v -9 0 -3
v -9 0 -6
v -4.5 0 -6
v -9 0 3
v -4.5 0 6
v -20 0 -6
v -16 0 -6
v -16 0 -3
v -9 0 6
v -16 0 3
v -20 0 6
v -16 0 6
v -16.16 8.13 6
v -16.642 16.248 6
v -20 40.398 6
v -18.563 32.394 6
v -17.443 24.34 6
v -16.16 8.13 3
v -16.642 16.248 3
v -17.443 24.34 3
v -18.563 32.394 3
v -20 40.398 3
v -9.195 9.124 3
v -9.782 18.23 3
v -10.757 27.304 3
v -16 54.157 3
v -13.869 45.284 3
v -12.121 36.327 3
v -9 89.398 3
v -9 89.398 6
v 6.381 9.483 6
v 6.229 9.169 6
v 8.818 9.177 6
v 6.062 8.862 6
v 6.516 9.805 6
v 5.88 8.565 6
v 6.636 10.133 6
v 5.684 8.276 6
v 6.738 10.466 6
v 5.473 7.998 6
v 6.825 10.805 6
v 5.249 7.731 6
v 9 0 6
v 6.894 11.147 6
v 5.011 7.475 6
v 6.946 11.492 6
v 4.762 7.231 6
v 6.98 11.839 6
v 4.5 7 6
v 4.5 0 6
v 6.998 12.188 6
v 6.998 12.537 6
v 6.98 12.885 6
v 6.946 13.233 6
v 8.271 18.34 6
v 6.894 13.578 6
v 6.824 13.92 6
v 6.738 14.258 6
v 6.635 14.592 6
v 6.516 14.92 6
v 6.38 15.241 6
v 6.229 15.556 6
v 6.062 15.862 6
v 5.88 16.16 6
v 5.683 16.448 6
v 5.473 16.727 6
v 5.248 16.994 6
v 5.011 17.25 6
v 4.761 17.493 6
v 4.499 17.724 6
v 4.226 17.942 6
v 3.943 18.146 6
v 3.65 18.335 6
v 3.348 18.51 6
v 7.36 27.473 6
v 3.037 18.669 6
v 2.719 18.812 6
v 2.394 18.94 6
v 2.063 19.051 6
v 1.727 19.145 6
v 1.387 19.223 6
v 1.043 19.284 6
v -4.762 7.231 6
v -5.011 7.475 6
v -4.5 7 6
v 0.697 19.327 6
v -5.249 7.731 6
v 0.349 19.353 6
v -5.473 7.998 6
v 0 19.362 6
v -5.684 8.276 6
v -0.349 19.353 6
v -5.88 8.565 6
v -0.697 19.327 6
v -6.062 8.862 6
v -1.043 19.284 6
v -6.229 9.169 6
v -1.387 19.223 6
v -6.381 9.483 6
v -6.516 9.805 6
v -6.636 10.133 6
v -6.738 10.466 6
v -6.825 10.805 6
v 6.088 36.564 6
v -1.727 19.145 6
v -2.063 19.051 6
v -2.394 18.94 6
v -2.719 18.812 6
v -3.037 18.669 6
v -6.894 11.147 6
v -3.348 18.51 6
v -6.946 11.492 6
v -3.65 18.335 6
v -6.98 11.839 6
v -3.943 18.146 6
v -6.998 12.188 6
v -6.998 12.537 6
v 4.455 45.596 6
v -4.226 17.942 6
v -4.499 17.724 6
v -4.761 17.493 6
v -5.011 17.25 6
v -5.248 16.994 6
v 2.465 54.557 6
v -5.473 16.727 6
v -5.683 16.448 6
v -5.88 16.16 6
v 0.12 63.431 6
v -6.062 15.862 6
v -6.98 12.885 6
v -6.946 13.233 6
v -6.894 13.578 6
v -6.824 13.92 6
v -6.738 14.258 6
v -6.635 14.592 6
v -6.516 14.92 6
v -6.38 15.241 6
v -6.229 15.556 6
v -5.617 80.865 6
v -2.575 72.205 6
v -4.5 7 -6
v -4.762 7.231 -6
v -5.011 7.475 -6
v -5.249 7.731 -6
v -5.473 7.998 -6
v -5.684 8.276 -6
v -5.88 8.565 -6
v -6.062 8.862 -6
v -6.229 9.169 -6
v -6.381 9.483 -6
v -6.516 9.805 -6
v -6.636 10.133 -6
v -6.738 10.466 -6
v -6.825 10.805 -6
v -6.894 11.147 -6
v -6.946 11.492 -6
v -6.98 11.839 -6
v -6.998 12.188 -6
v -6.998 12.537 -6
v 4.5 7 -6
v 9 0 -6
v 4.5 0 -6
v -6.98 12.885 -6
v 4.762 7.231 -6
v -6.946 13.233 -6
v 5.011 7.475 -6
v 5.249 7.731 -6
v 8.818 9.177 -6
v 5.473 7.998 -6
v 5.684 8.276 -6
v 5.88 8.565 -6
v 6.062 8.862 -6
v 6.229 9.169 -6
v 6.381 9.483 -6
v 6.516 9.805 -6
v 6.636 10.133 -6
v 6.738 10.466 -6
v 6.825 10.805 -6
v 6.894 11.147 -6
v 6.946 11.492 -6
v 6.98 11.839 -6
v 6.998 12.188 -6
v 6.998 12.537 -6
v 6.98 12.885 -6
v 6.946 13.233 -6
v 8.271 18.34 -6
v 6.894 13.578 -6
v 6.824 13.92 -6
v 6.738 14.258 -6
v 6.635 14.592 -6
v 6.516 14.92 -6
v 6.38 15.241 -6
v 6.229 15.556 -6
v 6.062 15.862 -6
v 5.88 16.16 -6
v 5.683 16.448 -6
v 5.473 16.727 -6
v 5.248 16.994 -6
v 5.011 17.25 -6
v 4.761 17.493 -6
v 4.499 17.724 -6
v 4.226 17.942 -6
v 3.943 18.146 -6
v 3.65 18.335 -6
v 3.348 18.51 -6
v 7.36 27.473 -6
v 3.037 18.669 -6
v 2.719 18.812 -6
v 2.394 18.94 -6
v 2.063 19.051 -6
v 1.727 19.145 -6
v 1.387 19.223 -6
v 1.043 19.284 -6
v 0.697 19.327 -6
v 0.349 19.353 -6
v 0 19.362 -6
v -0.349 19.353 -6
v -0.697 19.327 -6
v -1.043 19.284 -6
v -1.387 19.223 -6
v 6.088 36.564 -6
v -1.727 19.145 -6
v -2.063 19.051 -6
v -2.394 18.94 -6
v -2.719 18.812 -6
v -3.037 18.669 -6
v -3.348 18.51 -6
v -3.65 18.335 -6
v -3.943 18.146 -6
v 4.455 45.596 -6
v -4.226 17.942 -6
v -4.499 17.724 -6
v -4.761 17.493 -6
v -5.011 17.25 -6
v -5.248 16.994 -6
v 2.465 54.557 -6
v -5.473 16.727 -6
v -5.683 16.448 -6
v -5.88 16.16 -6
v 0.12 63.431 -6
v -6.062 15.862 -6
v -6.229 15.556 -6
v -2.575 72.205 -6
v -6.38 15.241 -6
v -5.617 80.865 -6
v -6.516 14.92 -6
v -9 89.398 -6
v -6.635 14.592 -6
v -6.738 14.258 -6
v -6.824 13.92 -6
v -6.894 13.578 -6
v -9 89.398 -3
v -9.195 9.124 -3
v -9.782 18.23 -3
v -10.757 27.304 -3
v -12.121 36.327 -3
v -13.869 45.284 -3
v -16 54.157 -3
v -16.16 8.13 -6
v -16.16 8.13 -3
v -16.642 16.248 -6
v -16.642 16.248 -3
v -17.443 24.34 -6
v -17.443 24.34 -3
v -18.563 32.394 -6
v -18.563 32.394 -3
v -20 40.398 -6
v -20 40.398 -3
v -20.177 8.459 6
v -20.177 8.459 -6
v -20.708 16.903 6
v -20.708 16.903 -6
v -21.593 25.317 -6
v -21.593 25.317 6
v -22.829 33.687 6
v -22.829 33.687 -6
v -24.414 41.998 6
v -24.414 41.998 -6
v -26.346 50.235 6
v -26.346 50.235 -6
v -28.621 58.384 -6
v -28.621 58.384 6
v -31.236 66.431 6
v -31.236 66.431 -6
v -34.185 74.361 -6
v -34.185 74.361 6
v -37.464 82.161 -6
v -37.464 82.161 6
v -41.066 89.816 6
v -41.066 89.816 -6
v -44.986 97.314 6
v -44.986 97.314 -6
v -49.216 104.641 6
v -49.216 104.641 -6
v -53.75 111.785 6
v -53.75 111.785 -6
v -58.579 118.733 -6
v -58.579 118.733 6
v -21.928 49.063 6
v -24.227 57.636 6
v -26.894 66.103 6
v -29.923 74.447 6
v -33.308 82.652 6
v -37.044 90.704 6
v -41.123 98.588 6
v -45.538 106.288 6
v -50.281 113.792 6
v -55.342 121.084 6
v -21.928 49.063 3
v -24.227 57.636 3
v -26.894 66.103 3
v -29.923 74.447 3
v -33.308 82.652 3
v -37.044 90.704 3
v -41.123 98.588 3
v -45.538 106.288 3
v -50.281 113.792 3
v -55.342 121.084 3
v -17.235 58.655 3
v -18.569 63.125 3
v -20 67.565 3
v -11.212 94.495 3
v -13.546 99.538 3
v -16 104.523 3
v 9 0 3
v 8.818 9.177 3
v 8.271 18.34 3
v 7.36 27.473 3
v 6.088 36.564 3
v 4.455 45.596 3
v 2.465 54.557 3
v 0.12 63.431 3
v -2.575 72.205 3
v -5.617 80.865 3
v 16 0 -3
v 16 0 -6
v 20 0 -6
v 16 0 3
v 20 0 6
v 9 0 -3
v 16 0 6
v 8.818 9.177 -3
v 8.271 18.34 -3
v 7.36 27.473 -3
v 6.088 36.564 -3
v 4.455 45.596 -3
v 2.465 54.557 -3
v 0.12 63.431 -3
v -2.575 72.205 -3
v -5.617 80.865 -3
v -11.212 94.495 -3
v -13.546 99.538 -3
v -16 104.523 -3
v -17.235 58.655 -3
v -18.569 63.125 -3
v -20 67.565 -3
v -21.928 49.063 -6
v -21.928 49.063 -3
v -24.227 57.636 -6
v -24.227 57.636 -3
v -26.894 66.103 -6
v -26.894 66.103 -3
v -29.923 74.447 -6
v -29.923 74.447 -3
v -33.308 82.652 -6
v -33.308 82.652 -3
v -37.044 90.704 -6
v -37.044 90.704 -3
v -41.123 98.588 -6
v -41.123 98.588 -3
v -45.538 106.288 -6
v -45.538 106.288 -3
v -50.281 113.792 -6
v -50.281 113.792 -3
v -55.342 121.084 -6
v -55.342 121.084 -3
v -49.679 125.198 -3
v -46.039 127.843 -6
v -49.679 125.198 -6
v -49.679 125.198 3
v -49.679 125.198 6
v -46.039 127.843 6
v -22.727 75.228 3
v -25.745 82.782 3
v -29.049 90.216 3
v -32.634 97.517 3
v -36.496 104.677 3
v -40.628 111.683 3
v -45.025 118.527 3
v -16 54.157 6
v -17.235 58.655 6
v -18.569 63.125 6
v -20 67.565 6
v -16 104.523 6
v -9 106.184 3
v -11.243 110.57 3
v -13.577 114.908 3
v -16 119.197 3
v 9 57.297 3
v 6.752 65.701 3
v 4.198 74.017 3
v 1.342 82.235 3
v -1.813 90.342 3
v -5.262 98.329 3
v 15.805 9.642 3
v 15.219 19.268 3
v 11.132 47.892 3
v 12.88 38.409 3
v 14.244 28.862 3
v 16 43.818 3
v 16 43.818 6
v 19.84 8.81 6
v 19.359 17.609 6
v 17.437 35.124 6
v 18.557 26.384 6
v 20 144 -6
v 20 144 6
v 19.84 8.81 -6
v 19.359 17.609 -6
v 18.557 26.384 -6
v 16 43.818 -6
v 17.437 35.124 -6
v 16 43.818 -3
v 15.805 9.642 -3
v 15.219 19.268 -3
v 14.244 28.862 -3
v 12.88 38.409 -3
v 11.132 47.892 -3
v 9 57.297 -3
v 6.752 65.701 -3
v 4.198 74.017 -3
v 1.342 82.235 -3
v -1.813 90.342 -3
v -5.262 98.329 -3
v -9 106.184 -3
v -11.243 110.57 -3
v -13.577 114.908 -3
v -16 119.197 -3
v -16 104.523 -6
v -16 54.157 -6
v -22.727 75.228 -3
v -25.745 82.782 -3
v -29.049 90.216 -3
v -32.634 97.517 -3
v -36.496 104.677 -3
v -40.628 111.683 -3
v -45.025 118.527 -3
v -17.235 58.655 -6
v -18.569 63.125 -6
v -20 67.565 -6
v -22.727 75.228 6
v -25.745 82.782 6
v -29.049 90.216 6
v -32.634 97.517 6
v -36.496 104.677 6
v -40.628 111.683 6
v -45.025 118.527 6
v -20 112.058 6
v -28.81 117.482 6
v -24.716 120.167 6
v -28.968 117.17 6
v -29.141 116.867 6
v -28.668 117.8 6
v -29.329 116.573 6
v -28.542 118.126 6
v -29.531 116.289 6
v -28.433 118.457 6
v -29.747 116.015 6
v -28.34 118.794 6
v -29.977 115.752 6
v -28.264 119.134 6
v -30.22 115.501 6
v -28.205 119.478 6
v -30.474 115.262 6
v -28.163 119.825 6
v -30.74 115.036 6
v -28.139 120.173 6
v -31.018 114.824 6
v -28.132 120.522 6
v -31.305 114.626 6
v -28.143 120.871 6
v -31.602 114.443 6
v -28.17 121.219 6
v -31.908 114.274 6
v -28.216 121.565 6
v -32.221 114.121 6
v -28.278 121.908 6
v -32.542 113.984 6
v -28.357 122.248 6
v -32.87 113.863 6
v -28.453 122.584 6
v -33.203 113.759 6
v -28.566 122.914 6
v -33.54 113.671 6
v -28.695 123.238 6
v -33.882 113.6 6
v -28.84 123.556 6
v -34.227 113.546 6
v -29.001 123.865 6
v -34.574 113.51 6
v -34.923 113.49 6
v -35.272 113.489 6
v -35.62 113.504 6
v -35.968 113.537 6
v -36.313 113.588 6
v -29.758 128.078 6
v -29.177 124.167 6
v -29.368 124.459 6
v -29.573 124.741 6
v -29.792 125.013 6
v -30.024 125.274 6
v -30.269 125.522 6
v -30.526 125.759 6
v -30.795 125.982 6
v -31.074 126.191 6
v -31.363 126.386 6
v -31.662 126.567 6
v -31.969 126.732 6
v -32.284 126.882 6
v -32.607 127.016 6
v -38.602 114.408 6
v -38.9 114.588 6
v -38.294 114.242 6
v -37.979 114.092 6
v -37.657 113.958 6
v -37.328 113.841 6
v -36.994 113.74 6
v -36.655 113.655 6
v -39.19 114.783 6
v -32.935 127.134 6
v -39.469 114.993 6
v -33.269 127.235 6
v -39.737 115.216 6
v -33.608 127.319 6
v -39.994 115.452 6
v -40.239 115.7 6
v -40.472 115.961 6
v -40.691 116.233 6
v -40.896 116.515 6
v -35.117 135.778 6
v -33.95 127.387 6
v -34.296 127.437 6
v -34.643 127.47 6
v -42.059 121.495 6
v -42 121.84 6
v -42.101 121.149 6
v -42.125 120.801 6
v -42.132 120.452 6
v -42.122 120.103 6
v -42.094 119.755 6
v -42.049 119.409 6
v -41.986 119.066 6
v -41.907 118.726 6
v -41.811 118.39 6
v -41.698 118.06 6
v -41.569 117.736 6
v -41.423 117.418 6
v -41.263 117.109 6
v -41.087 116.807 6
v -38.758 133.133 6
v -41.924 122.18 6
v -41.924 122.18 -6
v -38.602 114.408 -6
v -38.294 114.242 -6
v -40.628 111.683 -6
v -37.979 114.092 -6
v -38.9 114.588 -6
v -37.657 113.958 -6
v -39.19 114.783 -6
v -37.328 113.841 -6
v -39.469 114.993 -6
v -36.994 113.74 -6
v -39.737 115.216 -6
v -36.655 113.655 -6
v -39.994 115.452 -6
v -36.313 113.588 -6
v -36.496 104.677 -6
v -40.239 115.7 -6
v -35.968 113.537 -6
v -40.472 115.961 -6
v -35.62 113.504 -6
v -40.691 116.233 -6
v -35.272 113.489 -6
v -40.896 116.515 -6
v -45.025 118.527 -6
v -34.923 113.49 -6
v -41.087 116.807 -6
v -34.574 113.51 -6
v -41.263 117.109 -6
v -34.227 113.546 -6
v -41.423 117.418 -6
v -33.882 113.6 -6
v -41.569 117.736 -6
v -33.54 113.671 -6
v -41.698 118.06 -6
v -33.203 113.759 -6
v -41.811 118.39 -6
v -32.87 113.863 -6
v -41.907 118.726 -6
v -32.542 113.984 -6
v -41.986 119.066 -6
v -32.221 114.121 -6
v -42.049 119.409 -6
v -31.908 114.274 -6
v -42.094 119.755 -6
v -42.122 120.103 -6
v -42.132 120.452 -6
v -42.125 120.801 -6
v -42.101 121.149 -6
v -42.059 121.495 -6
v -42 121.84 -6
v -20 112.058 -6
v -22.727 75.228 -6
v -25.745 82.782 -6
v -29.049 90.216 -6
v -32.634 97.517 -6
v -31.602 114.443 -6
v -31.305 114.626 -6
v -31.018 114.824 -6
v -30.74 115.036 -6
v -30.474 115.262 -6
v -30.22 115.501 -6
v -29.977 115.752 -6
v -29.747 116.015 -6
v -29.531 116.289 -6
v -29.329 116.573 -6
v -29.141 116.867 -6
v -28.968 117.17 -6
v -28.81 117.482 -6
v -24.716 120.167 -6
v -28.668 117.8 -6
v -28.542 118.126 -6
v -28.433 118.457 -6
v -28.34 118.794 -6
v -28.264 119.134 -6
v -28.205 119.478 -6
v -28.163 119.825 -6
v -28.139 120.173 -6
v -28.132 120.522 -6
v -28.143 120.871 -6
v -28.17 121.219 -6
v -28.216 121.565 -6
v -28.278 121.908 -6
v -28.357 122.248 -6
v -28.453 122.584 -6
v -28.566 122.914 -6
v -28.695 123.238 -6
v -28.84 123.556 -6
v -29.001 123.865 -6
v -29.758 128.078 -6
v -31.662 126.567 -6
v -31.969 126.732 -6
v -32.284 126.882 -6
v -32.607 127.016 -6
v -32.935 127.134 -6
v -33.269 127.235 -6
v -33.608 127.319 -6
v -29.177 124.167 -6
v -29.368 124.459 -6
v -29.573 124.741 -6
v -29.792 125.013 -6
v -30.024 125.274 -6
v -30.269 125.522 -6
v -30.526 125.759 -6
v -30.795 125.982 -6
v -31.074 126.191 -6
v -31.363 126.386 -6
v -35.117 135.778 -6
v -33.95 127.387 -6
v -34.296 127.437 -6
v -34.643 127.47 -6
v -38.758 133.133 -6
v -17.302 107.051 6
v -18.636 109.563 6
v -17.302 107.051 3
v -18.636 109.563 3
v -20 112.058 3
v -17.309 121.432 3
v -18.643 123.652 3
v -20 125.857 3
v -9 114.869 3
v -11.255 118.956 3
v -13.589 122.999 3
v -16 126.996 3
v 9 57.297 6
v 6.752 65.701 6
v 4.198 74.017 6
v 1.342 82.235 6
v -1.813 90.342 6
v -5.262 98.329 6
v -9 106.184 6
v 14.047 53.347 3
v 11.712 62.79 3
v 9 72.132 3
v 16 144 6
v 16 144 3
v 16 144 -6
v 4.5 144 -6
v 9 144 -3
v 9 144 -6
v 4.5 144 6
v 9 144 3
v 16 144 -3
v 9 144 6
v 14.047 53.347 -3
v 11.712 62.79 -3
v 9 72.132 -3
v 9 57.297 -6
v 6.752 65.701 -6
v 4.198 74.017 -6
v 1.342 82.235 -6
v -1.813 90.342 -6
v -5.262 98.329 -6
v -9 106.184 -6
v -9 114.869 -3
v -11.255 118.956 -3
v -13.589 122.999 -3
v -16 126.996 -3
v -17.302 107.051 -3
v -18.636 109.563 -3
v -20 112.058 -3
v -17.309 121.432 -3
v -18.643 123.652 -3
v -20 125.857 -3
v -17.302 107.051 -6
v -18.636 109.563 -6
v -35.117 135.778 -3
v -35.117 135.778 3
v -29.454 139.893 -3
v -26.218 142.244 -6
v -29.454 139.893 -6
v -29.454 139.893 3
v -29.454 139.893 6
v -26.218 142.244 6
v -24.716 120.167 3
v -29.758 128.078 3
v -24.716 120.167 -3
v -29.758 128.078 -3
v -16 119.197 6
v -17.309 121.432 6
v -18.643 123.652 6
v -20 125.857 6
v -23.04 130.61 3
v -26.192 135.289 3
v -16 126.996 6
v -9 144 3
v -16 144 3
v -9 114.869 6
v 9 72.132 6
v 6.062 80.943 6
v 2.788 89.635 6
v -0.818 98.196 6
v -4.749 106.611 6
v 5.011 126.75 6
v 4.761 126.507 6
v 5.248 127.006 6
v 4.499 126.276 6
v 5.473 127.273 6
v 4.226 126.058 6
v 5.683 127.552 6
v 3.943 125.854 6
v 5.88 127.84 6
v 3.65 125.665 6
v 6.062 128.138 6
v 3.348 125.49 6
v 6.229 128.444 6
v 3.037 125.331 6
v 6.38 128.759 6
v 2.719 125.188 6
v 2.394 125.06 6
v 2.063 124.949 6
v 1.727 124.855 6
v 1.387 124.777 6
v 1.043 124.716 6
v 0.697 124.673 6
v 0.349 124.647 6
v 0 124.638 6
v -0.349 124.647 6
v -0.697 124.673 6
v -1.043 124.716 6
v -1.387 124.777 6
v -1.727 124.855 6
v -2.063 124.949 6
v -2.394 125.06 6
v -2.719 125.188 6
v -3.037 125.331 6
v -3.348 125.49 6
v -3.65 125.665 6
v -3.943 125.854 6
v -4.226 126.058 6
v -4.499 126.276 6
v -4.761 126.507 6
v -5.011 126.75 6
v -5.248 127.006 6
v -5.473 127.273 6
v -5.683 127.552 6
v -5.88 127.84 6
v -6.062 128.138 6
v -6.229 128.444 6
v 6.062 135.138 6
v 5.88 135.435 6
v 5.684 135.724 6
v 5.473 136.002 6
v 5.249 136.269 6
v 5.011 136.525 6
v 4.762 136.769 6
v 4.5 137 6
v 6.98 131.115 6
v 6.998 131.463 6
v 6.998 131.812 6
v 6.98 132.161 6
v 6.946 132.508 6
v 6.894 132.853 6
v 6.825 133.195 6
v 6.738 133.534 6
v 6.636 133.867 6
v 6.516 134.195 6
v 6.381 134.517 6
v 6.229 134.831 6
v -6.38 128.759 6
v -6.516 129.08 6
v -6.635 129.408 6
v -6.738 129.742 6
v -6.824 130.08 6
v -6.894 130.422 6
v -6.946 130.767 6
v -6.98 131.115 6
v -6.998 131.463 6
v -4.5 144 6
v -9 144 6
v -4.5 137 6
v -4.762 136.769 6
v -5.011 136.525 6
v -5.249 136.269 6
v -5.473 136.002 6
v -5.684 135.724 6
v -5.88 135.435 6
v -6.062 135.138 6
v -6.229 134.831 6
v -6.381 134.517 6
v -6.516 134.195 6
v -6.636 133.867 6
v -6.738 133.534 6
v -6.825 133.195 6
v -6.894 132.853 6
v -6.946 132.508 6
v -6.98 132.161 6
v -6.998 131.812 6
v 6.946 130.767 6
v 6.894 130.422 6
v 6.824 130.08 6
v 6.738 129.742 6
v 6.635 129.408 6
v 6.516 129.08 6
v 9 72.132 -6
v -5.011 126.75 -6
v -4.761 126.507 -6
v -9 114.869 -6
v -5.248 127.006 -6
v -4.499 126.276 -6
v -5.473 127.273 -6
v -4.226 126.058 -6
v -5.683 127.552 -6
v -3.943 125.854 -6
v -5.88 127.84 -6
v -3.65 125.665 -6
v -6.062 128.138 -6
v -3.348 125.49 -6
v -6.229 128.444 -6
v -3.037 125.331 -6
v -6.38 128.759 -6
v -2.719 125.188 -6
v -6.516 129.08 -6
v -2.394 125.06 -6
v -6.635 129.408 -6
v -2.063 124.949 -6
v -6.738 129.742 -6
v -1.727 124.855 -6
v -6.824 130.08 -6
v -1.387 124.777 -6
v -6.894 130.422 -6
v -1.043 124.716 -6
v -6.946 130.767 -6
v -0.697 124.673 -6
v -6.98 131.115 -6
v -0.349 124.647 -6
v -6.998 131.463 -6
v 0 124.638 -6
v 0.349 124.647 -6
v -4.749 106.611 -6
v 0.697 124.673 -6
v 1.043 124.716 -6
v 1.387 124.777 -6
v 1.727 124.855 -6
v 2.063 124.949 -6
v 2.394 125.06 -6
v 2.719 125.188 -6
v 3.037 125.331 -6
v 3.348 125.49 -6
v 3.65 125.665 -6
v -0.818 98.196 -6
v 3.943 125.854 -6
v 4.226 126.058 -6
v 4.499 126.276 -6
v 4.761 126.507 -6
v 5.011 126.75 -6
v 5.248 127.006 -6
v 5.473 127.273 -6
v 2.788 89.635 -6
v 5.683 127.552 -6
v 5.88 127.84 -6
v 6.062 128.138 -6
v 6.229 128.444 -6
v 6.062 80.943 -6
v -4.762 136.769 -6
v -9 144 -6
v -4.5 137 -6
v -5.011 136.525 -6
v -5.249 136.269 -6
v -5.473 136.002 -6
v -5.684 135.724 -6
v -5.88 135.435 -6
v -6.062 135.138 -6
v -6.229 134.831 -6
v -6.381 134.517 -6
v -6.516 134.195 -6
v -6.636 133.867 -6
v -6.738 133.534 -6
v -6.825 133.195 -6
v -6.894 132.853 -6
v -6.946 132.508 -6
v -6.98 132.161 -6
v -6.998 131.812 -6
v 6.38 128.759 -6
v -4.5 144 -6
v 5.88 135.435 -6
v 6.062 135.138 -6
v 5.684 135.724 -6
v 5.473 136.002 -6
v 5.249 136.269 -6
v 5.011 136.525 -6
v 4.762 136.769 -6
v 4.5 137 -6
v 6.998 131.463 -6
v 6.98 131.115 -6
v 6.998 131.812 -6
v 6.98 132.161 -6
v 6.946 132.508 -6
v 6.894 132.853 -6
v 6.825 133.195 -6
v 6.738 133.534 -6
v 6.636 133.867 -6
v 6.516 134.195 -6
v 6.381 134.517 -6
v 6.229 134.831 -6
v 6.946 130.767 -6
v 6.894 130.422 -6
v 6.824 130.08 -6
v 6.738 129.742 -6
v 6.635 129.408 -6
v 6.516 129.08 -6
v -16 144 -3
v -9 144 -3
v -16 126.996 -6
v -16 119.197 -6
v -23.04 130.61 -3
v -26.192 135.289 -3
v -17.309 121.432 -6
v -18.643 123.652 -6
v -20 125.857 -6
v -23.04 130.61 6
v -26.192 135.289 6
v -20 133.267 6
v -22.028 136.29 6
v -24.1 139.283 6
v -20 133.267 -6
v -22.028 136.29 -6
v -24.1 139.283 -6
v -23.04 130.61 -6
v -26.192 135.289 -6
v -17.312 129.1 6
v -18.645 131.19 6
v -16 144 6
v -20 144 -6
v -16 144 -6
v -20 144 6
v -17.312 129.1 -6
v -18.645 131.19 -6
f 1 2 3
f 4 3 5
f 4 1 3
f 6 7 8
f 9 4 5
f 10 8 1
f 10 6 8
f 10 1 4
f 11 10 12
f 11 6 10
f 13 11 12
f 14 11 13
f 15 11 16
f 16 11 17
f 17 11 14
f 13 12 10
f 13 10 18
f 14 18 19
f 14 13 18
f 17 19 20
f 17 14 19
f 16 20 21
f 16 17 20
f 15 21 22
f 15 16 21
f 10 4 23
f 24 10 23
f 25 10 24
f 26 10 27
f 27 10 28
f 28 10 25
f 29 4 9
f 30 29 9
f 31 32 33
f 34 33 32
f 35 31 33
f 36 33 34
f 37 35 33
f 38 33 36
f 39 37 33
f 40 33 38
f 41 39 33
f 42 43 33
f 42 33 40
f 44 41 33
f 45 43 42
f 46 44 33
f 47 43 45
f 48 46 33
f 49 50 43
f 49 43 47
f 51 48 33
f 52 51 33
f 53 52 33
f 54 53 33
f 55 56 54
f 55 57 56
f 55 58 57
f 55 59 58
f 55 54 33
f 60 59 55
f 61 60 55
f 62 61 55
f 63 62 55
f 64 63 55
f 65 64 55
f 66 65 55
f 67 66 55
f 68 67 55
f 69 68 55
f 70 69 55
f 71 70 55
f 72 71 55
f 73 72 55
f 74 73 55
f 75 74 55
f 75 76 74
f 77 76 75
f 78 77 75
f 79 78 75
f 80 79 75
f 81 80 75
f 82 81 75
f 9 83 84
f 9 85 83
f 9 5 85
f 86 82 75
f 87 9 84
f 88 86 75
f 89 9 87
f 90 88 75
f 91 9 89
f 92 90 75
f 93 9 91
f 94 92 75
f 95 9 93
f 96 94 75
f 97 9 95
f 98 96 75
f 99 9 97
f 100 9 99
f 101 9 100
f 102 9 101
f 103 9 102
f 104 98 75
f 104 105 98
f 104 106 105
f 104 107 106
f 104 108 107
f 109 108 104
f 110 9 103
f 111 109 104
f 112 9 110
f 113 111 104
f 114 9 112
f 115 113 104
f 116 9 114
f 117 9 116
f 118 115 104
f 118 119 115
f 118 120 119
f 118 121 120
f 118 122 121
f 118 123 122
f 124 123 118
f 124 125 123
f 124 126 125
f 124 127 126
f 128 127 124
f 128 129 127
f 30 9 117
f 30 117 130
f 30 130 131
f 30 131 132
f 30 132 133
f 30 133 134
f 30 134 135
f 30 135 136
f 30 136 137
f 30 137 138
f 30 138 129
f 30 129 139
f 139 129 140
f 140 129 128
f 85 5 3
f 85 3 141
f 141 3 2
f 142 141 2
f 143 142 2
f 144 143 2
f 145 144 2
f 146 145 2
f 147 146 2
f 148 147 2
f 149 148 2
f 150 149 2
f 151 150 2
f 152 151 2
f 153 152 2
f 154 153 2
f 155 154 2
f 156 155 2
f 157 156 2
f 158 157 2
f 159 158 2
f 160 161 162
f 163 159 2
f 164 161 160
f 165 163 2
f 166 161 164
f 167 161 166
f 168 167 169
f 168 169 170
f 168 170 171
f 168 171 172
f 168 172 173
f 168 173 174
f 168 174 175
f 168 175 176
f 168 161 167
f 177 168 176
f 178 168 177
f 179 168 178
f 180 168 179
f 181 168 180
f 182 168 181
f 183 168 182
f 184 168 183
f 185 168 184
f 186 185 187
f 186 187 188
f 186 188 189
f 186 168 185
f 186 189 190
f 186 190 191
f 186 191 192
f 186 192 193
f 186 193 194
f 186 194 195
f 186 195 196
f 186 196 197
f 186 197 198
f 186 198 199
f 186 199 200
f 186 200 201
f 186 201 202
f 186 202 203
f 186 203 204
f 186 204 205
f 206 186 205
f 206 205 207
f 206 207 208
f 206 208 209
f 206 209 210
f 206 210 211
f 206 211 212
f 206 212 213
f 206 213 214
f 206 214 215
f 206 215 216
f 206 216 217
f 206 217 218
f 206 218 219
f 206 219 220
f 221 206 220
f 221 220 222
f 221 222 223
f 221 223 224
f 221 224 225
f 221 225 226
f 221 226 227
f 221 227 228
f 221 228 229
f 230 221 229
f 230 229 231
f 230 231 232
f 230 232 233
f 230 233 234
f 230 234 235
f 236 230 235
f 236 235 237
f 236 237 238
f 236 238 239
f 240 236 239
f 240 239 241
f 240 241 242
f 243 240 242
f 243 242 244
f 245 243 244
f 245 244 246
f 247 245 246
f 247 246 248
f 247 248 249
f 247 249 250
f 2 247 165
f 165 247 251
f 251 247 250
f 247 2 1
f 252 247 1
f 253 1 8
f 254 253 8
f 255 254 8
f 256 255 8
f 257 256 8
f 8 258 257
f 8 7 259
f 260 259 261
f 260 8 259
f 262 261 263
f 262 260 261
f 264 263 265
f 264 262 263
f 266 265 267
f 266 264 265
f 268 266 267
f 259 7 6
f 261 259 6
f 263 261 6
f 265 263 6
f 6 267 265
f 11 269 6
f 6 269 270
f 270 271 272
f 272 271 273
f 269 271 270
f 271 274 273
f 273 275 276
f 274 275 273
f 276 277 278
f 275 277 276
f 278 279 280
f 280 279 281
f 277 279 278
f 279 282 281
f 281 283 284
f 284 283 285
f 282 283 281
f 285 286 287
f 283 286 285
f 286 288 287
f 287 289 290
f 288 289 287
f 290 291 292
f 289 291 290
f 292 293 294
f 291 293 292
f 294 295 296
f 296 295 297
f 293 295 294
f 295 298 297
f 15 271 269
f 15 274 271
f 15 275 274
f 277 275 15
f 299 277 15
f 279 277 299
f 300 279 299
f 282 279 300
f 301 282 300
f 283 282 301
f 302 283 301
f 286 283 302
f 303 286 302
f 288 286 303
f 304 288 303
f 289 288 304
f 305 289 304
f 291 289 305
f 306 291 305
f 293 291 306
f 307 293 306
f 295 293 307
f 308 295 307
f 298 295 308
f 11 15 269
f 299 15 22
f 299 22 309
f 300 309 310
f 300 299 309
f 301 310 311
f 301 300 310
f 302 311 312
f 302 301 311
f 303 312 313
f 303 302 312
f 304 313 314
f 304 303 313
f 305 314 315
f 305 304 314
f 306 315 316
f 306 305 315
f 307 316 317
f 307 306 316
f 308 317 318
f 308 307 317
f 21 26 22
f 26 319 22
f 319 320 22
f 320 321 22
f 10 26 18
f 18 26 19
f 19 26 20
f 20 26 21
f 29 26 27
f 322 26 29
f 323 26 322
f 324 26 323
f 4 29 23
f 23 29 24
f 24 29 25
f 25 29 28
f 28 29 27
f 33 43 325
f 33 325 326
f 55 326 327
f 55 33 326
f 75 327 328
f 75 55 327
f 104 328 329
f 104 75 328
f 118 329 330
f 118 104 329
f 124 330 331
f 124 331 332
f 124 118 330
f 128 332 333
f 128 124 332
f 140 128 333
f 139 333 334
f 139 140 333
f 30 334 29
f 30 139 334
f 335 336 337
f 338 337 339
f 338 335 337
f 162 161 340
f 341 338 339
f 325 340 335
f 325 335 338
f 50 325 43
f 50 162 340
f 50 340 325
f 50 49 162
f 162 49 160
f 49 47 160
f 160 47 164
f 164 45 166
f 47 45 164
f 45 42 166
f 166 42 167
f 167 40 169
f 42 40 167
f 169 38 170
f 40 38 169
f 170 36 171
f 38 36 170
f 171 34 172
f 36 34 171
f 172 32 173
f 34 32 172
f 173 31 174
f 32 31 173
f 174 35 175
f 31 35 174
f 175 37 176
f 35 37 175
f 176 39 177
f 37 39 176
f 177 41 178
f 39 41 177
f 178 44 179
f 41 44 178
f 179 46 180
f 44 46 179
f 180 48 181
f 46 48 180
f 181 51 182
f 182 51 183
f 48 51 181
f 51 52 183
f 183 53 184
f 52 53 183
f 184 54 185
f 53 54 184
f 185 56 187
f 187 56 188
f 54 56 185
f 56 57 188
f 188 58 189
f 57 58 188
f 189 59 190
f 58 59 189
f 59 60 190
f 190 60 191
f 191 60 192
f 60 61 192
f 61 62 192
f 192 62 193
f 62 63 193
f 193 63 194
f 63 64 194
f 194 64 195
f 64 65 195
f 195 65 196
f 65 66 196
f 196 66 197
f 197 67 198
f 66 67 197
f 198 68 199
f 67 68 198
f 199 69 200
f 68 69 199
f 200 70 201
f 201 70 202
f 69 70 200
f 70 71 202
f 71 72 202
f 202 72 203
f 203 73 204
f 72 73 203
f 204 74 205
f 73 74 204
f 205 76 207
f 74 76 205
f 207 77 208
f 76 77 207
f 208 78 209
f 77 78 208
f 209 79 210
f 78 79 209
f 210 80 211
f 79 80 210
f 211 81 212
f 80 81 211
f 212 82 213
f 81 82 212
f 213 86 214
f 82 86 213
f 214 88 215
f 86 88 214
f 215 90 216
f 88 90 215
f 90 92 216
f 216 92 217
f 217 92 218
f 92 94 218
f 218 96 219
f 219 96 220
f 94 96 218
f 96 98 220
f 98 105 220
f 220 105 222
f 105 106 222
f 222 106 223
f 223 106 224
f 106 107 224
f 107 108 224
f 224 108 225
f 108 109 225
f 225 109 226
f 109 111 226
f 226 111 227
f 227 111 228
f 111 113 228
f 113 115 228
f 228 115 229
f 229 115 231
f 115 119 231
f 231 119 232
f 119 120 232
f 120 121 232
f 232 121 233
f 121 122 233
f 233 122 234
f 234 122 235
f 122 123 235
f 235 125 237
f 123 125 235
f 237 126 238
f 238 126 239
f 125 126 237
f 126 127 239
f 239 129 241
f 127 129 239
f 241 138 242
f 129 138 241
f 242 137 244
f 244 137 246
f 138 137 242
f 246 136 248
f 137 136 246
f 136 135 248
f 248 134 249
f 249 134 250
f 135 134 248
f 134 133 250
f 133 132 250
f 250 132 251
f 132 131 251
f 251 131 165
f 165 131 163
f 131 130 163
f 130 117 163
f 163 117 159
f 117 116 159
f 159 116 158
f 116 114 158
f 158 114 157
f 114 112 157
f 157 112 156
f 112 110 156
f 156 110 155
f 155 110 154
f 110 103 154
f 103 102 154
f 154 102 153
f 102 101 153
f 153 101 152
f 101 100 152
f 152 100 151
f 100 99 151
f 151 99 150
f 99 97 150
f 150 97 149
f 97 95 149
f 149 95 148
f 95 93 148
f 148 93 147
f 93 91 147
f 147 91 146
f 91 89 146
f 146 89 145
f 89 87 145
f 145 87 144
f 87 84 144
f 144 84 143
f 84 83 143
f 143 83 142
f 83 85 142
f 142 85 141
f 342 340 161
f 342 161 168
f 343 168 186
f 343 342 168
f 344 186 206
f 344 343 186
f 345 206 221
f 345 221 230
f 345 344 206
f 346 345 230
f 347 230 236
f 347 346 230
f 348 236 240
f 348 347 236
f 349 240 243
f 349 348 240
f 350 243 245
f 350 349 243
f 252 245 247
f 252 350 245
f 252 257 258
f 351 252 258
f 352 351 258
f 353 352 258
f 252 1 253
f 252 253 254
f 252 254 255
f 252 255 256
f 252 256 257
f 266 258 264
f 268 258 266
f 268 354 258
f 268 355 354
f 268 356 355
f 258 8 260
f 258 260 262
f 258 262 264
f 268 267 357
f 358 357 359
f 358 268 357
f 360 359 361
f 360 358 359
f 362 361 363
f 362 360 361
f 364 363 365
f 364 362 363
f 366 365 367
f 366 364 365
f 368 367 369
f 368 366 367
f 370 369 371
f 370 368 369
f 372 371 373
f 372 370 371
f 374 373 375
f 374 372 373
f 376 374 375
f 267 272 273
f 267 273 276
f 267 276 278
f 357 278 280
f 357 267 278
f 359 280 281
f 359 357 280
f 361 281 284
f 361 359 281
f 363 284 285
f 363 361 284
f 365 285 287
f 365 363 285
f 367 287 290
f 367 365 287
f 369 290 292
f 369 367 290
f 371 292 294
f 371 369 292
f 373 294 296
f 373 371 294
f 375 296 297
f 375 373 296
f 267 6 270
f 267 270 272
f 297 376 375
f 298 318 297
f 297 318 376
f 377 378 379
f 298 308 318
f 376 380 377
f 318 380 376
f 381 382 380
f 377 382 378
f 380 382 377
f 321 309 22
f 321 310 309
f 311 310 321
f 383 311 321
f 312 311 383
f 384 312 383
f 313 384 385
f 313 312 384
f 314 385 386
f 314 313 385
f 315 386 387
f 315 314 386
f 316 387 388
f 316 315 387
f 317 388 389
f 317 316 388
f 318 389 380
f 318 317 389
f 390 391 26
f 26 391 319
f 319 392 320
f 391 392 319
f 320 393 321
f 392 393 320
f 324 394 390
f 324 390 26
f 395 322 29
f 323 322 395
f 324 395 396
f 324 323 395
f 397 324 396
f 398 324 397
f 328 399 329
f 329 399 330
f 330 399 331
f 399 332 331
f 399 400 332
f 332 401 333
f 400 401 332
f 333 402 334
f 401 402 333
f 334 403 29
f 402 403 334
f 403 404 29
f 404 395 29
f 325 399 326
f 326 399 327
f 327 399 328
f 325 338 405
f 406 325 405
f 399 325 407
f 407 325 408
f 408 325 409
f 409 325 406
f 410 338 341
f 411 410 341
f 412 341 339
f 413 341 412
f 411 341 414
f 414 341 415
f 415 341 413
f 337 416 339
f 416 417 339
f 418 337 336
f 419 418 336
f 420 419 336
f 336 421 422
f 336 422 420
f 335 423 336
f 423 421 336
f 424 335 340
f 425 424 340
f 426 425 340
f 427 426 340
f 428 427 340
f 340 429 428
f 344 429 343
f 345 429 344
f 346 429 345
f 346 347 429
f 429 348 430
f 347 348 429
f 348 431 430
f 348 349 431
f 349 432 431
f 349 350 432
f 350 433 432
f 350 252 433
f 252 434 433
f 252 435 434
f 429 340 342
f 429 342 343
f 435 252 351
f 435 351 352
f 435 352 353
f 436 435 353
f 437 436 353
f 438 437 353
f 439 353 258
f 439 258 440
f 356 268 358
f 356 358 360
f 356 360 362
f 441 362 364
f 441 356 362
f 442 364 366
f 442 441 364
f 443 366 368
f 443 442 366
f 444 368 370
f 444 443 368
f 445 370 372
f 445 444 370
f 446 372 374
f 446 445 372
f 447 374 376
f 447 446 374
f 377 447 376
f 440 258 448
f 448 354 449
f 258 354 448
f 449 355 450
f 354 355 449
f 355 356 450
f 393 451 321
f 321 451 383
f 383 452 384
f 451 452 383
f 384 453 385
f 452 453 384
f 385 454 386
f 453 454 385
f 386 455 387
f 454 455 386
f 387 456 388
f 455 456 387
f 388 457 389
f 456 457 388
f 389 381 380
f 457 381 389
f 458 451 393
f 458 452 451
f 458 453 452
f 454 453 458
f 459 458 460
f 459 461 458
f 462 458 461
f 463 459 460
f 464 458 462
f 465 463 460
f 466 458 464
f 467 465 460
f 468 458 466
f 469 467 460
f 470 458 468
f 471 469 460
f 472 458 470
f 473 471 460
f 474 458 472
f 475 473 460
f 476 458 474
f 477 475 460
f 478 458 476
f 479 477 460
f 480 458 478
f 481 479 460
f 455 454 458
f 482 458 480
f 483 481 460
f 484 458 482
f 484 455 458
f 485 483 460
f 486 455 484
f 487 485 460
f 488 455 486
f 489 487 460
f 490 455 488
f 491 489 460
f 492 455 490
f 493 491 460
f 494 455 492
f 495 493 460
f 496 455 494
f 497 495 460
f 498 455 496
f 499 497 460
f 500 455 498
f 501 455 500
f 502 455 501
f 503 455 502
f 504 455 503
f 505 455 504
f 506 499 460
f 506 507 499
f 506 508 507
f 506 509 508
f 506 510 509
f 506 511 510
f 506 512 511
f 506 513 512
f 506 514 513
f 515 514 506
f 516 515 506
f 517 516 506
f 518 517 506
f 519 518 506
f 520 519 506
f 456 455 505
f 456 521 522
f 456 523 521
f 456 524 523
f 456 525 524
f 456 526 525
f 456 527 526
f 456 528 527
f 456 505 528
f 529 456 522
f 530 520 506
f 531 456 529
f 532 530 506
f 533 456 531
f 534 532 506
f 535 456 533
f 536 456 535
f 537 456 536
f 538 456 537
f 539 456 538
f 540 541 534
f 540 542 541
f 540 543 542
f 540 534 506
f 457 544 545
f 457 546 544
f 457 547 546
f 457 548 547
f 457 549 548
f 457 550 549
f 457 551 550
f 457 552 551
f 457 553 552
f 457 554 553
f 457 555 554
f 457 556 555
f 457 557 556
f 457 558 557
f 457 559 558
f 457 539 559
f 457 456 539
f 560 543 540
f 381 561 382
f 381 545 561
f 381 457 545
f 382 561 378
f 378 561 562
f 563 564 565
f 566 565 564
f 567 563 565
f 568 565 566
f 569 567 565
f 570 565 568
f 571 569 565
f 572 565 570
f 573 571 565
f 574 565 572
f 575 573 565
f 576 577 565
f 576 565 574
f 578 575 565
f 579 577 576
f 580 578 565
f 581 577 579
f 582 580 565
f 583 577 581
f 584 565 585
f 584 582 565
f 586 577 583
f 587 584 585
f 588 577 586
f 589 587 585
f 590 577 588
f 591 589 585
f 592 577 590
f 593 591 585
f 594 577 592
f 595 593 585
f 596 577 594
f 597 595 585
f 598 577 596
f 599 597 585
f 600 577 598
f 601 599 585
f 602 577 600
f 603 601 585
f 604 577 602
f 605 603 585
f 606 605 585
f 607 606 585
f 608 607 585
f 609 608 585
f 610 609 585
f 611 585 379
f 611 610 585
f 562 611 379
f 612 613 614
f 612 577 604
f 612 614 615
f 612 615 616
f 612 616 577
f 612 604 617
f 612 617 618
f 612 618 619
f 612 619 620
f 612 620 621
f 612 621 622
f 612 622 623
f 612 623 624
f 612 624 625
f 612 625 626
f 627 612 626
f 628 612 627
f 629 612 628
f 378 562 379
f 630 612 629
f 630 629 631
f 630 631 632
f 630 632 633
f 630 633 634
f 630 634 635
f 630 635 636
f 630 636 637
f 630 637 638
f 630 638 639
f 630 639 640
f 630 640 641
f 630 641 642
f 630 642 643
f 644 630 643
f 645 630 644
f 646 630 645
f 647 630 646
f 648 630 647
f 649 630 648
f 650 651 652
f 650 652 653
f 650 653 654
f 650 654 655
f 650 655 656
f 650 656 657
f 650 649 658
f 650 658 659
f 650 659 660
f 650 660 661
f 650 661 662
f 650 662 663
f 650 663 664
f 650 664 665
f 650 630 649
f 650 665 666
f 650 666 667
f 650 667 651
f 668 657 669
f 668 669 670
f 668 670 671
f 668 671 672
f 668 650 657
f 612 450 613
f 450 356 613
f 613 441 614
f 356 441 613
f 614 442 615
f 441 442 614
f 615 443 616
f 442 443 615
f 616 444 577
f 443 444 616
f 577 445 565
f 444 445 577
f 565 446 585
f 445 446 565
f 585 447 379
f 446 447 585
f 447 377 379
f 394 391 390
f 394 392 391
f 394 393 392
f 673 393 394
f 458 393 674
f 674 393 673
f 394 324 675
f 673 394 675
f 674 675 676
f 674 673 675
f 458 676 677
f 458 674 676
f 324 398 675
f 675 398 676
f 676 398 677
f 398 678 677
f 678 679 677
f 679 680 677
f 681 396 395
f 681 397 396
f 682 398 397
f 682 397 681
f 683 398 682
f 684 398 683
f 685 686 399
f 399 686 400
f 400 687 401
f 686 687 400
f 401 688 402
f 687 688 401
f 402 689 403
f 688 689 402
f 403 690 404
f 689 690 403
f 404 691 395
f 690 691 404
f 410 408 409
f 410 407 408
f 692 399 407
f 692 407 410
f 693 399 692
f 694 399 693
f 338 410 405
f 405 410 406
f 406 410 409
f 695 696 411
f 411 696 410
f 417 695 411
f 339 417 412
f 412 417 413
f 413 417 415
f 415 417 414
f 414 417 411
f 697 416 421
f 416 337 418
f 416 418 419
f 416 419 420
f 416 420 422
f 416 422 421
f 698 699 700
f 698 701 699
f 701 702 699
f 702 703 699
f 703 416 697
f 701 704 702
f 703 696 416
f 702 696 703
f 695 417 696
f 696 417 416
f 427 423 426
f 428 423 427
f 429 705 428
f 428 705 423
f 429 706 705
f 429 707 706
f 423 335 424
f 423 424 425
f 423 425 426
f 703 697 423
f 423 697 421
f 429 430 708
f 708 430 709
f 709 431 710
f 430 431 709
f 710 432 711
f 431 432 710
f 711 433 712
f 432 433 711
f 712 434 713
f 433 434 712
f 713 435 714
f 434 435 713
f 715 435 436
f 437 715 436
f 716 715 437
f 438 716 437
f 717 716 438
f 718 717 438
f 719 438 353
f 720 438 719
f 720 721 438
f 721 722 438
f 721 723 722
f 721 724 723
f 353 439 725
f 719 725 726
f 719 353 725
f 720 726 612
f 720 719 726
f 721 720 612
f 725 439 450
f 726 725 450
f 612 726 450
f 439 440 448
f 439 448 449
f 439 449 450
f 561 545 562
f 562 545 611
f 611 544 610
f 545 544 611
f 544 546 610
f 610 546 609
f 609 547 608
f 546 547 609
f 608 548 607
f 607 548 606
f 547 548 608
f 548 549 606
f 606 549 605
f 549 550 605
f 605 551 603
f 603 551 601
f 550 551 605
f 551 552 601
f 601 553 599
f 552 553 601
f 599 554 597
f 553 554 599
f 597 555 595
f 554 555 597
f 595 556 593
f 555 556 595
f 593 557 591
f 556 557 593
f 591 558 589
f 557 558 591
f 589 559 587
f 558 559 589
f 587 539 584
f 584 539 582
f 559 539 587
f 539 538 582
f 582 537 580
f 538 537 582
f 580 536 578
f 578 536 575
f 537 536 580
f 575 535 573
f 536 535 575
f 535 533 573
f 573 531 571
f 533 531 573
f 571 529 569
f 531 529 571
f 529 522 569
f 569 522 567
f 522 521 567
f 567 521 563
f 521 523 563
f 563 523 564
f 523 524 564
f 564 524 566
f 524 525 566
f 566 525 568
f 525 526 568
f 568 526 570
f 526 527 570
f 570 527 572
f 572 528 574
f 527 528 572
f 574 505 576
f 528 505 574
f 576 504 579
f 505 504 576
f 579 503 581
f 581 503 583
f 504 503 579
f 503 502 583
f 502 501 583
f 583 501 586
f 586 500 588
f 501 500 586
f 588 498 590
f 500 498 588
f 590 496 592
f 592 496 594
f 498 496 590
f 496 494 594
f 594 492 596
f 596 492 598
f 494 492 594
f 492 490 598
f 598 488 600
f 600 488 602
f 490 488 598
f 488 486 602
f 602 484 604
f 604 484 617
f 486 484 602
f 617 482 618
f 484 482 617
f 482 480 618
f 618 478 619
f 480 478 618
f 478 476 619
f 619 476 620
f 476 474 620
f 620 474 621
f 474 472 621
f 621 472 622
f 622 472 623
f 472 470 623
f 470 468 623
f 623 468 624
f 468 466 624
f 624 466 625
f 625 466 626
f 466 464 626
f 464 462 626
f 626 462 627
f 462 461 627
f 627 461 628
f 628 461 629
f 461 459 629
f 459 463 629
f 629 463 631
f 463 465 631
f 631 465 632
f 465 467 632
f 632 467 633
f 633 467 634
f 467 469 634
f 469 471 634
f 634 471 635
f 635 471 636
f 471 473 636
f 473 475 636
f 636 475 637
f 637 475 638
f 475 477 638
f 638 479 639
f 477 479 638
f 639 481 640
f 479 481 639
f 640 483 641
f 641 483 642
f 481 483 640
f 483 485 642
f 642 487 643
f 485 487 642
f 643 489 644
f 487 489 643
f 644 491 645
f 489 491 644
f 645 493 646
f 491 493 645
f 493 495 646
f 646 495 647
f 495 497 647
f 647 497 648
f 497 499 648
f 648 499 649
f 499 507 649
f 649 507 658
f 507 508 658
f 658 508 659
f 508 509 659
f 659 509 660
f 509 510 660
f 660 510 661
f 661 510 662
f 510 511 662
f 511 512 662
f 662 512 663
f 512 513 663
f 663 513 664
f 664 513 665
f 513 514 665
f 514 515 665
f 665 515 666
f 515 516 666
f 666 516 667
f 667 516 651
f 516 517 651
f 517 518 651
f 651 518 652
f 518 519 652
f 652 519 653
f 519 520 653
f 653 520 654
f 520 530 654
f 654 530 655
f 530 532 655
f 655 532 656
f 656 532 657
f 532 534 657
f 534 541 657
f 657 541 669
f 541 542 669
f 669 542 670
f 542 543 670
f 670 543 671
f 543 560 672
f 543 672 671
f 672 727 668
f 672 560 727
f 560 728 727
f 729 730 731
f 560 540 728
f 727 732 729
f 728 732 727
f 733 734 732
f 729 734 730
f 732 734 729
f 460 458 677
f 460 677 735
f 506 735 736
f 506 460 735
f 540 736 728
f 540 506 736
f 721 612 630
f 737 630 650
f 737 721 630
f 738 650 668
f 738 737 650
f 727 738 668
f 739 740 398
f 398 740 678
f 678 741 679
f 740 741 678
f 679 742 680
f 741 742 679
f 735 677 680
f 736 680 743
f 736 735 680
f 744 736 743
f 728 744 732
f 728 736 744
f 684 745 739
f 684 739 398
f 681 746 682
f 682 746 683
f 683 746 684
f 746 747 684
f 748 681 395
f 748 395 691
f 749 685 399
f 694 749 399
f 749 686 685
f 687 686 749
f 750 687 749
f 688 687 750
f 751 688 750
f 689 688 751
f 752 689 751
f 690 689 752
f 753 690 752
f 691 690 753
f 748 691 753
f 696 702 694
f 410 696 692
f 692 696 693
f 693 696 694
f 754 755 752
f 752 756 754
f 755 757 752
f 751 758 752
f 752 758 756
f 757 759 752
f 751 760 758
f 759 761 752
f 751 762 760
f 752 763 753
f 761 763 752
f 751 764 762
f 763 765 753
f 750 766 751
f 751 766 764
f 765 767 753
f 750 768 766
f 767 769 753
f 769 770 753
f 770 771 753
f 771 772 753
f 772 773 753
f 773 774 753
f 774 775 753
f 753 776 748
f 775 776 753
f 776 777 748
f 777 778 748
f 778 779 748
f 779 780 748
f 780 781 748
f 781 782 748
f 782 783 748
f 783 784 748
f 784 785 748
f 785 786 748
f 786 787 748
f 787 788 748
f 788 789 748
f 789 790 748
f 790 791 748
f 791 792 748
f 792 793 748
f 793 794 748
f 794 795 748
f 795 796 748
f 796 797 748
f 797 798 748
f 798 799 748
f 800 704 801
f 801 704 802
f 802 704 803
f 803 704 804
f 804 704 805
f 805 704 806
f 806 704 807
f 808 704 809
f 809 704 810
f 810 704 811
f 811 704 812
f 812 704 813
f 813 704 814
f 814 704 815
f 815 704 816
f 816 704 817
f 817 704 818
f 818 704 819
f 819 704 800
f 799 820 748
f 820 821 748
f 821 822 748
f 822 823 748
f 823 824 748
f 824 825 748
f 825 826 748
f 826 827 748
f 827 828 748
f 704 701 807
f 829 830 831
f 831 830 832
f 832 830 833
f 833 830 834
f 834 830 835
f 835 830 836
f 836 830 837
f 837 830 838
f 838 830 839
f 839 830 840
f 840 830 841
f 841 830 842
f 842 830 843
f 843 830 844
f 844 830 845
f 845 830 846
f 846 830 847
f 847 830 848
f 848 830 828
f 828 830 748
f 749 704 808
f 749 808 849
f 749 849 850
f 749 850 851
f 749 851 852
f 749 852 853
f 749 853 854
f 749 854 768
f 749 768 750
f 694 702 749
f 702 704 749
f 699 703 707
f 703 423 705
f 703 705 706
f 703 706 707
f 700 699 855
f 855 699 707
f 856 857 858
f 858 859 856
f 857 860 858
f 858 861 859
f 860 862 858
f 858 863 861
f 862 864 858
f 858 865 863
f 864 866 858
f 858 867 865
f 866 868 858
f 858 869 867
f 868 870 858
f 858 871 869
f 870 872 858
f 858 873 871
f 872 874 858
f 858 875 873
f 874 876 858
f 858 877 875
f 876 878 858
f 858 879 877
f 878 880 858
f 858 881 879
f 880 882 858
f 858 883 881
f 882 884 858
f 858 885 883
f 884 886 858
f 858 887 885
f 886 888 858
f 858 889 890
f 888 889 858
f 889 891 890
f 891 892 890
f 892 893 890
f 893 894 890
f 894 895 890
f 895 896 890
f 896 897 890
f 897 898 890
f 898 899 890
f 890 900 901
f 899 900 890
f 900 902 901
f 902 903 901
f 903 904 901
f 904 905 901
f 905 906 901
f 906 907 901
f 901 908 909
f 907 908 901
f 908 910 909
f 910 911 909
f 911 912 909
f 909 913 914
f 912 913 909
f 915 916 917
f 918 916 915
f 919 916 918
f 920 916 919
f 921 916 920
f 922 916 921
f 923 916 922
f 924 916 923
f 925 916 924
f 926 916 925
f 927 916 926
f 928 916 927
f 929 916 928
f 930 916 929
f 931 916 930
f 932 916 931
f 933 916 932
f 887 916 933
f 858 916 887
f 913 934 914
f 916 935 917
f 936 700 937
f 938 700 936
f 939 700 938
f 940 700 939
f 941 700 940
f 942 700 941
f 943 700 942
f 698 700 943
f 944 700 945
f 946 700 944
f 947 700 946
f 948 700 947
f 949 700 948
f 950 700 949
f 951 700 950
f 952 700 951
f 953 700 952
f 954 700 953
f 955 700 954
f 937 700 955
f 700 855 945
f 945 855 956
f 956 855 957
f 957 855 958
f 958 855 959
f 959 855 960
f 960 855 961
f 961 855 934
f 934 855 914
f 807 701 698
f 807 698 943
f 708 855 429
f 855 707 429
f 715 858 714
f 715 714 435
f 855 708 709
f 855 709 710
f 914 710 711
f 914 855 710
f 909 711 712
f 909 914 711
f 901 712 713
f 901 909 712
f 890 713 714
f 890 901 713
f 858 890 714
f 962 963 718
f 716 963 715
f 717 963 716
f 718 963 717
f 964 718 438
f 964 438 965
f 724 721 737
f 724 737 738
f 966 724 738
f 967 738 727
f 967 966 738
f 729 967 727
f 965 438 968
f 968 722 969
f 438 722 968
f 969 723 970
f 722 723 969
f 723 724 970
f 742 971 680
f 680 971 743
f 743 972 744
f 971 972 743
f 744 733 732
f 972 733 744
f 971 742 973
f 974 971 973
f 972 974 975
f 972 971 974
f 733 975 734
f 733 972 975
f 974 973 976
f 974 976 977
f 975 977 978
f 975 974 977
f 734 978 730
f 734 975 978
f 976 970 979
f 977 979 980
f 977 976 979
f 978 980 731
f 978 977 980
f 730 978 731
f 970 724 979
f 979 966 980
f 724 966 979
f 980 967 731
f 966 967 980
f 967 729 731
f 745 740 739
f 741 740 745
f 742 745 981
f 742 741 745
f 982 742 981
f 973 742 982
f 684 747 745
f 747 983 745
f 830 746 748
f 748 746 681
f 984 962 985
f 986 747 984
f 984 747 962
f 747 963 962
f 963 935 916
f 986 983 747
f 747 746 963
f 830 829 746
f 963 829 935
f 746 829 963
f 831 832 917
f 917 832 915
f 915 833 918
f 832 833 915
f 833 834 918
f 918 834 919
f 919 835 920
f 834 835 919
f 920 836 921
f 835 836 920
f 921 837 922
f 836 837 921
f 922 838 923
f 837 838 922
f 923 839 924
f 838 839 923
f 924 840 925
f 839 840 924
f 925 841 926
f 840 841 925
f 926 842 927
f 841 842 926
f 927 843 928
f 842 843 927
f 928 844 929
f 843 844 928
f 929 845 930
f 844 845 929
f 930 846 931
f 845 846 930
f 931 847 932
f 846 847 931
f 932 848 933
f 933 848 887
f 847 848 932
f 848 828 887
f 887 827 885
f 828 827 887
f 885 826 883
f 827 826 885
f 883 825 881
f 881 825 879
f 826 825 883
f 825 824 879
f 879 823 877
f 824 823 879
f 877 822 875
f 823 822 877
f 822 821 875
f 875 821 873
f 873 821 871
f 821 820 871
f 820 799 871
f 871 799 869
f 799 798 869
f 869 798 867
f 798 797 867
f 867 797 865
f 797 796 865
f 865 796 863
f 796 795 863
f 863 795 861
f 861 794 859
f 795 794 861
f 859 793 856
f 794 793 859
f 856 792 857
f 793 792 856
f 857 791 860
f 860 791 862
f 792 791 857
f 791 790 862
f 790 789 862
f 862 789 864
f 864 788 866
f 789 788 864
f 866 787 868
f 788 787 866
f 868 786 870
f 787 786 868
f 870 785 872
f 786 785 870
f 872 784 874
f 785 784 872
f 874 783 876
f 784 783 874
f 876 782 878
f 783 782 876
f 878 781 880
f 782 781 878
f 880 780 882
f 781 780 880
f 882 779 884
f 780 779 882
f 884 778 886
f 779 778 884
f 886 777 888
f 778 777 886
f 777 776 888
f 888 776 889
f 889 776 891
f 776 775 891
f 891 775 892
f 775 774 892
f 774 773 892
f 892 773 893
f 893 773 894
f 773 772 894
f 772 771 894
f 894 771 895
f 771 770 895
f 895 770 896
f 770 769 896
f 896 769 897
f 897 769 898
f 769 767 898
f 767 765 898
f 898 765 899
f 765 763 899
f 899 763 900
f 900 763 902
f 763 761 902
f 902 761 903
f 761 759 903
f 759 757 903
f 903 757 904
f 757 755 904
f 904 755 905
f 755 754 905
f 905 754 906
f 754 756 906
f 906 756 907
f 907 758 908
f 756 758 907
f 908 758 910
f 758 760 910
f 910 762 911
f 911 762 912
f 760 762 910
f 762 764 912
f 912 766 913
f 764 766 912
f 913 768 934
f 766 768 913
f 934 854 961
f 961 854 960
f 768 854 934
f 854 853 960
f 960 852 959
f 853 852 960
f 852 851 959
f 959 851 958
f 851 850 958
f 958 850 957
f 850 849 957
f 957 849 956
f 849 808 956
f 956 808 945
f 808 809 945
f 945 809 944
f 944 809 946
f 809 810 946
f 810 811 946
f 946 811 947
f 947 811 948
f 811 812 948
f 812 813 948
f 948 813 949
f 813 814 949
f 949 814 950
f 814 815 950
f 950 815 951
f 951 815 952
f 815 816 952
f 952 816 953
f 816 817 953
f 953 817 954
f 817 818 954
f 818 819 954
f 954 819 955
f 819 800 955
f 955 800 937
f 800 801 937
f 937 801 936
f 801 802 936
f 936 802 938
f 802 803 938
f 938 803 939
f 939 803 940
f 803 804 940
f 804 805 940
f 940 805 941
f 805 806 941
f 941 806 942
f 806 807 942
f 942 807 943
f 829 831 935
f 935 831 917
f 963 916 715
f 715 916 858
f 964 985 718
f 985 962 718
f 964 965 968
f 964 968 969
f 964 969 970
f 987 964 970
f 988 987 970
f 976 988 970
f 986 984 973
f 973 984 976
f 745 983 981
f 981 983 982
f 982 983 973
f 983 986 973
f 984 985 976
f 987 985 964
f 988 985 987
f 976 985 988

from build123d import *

# Parameters (mm, degrees)
SKETCH004_W          = 7
SKETCH004_H          = 3
SKETCH005_W          = 7
SKETCH005_H          = 3
POCKET_DEPTH         = 12.001
POCKET001_DEPTH      = 12.001
SKETCH009_W          = 7
SKETCH009_H          = 3
SKETCH010_W          = 7
SKETCH010_H          = 3
POCKET002_DEPTH      = 6.001
POCKET002_DEPTH_BACK = -6.001


with BuildPart() as part:
    # AdditivePipe: sweep along a path in Sketch002
    with BuildLine(Plane.XY) as additivepipe_path:
        ThreePointArc((0, 0), (-10.865453, 68.601773), (-42.398227, 130.488326))
    # Sketch → AdditivePipe (sweep)
    with BuildSketch(Plane.XZ):
        Polygon((-20, 6), (-20, -6), (-16, -6), (-16, -3), (-9, -3), (-9, -6), (9, -6), (9, -3), (16, -3), (16, -6), (20, -6), (20, 6), (16, 6), (16, 3), (9, 3), (9, 6), (-9, 6), (-9, 3), (-16, 3), (-16, 6), align=None)
    sweep(path=additivepipe_path.line)

    # AdditivePipe001: sweep along a path in Sketch001
    with BuildLine(Plane.XY) as additivepipe001_path:
        Line((0, 0), (0, 144))
    # Sketch → AdditivePipe001 (sweep)
    with BuildSketch(Plane.XZ):
        Polygon((-20, 6), (-20, -6), (-16, -6), (-16, -3), (-9, -3), (-9, -6), (9, -6), (9, -3), (16, -3), (16, -6), (20, -6), (20, 6), (16, 6), (16, 3), (9, 3), (9, 6), (-9, 6), (-9, 3), (-16, 3), (-16, 6), align=None)
    sweep(path=additivepipe001_path.line)

    # SubtractivePipe: sweep along a path in Sketch001
    with BuildLine(Plane.XY) as subtractivepipe_path:
        Line((0, 0), (0, 144))
    # Sketch004 → SubtractivePipe (sweep, cut)
    with BuildSketch(Plane.XZ):
        with Locations((-12.5, 4.5)):
            Rectangle(SKETCH004_W, SKETCH004_H)
    sweep(path=subtractivepipe_path.line, mode=Mode.SUBTRACT)

    # SubtractivePipe001: sweep along a path in Sketch002
    with BuildLine(Plane.XY) as subtractivepipe001_path:
        ThreePointArc((0, 0), (-10.865453, 68.601773), (-42.398227, 130.488326))
    # Sketch004 → SubtractivePipe001 (sweep, cut)
    with BuildSketch(Plane.XZ):
        with Locations((-12.5, 4.5)):
            Rectangle(SKETCH004_W, SKETCH004_H)
    sweep(path=subtractivepipe001_path.line, mode=Mode.SUBTRACT)

    # SubtractivePipe002: sweep along a path in Sketch002
    with BuildLine(Plane.XY) as subtractivepipe002_path:
        ThreePointArc((0, 0), (-10.865453, 68.601773), (-42.398227, 130.488326))
    # Sketch005 (on Face1 of SubtractivePipe001) → SubtractivePipe002 (sweep, cut)
    with BuildSketch(Plane.XZ):
        with Locations((12.5, 4.5)):
            Rectangle(SKETCH005_W, SKETCH005_H)
    sweep(path=subtractivepipe002_path.line, mode=Mode.SUBTRACT)

    # SubtractivePipe003: sweep along a path in Sketch001
    with BuildLine(Plane.XY) as subtractivepipe003_path:
        Line((0, 0), (0, 144))
    # Sketch005 (on Face1 of SubtractivePipe001) → SubtractivePipe003 (sweep, cut)
    with BuildSketch(Plane.XZ):
        with Locations((12.5, 4.5)):
            Rectangle(SKETCH005_W, SKETCH005_H)
    subtractivepipe003 = sweep(path=subtractivepipe003_path.line, mode=Mode.SUBTRACT)

    # Mirrored: SubtractivePipe003 across XY
    add(subtractivepipe003.mirror(Plane.XY), mode=Mode.SUBTRACT)

    # Sketch006 (on Face53 of Mirrored) → Pocket (cut, through all)
    with BuildSketch(Plane(origin=(0, 0, 6), x_dir=(-1, 0, 0), z_dir=(0, 0, 1))):
        with BuildLine():
            Line((38.757651, -133.13336), (46.038804, -127.843292))
            Line((46.038804, -127.843292), (41.924307, -122.180173))
            ThreePointArc((41.924307, -122.180173), (31.017586, -114.824218), (34.643154, -127.470241))
            Line((38.757651, -133.13336), (34.643154, -127.470241))
        make_face()
    extrude(amount=-POCKET_DEPTH, mode=Mode.SUBTRACT)

    # Sketch007 (on Face63 of Pocket) → Pocket001 (cut, through all)
    with BuildSketch(Plane(origin=(0, 0, 6), x_dir=(-1, 0, 0), z_dir=(0, 0, 1))):
        with BuildLine():
            Line((-4.5, -144), (4.5, -144))
            Line((4.5, -144), (4.5, -137))
            ThreePointArc((4.5, -137), (0, -124.638097), (-4.5, -137))
            Line((-4.5, -144), (-4.5, -137))
        make_face()
    extrude(amount=-POCKET001_DEPTH, mode=Mode.SUBTRACT)

    # SubtractivePipe004: sweep along a path in Sketch002
    with BuildLine(Plane.XY) as subtractivepipe004_path:
        ThreePointArc((0, 0), (-10.865453, 68.601773), (-42.398227, 130.488326))
    # Sketch009 → SubtractivePipe004 (sweep, cut)
    with BuildSketch(Plane.XZ):
        with Locations((-12.5, -4.5)):
            Rectangle(SKETCH009_W, SKETCH009_H)
    sweep(path=subtractivepipe004_path.line, mode=Mode.SUBTRACT)

    # SubtractivePipe005: sweep along a path in Sketch001
    with BuildLine(Plane.XY) as subtractivepipe005_path:
        Line((0, 0), (0, 144))
    # Sketch009 → SubtractivePipe005 (sweep, cut)
    with BuildSketch(Plane.XZ):
        with Locations((-12.5, -4.5)):
            Rectangle(SKETCH009_W, SKETCH009_H)
    sweep(path=subtractivepipe005_path.line, mode=Mode.SUBTRACT)

    # SubtractivePipe006: sweep along a path in Sketch002
    with BuildLine(Plane.XY) as subtractivepipe006_path:
        ThreePointArc((0, 0), (-10.865453, 68.601773), (-42.398227, 130.488326))
    # Sketch010 (on Face1 of SubtractivePipe005) → SubtractivePipe006 (sweep, cut)
    with BuildSketch(Plane.XZ):
        with Locations((12.5, -4.5)):
            Rectangle(SKETCH010_W, SKETCH010_H)
    sweep(path=subtractivepipe006_path.line, mode=Mode.SUBTRACT)

    # Sketch011 → Pocket002 (cut, two sides)
    with BuildSketch(Plane.XY) as pocket002_sk:
        with BuildLine():
            Line((-4.5, 0), (4.5, 0))
            Line((4.5, 0), (4.5, 7))
            ThreePointArc((4.5, 7), (0, 19.361903), (-4.5, 7))
            Line((-4.5, 0), (-4.5, 7))
        make_face()
    extrude(amount=-POCKET002_DEPTH, mode=Mode.SUBTRACT)
    extrude(pocket002_sk.sketch, amount=-POCKET002_DEPTH_BACK, mode=Mode.SUBTRACT)


solid = part.part
